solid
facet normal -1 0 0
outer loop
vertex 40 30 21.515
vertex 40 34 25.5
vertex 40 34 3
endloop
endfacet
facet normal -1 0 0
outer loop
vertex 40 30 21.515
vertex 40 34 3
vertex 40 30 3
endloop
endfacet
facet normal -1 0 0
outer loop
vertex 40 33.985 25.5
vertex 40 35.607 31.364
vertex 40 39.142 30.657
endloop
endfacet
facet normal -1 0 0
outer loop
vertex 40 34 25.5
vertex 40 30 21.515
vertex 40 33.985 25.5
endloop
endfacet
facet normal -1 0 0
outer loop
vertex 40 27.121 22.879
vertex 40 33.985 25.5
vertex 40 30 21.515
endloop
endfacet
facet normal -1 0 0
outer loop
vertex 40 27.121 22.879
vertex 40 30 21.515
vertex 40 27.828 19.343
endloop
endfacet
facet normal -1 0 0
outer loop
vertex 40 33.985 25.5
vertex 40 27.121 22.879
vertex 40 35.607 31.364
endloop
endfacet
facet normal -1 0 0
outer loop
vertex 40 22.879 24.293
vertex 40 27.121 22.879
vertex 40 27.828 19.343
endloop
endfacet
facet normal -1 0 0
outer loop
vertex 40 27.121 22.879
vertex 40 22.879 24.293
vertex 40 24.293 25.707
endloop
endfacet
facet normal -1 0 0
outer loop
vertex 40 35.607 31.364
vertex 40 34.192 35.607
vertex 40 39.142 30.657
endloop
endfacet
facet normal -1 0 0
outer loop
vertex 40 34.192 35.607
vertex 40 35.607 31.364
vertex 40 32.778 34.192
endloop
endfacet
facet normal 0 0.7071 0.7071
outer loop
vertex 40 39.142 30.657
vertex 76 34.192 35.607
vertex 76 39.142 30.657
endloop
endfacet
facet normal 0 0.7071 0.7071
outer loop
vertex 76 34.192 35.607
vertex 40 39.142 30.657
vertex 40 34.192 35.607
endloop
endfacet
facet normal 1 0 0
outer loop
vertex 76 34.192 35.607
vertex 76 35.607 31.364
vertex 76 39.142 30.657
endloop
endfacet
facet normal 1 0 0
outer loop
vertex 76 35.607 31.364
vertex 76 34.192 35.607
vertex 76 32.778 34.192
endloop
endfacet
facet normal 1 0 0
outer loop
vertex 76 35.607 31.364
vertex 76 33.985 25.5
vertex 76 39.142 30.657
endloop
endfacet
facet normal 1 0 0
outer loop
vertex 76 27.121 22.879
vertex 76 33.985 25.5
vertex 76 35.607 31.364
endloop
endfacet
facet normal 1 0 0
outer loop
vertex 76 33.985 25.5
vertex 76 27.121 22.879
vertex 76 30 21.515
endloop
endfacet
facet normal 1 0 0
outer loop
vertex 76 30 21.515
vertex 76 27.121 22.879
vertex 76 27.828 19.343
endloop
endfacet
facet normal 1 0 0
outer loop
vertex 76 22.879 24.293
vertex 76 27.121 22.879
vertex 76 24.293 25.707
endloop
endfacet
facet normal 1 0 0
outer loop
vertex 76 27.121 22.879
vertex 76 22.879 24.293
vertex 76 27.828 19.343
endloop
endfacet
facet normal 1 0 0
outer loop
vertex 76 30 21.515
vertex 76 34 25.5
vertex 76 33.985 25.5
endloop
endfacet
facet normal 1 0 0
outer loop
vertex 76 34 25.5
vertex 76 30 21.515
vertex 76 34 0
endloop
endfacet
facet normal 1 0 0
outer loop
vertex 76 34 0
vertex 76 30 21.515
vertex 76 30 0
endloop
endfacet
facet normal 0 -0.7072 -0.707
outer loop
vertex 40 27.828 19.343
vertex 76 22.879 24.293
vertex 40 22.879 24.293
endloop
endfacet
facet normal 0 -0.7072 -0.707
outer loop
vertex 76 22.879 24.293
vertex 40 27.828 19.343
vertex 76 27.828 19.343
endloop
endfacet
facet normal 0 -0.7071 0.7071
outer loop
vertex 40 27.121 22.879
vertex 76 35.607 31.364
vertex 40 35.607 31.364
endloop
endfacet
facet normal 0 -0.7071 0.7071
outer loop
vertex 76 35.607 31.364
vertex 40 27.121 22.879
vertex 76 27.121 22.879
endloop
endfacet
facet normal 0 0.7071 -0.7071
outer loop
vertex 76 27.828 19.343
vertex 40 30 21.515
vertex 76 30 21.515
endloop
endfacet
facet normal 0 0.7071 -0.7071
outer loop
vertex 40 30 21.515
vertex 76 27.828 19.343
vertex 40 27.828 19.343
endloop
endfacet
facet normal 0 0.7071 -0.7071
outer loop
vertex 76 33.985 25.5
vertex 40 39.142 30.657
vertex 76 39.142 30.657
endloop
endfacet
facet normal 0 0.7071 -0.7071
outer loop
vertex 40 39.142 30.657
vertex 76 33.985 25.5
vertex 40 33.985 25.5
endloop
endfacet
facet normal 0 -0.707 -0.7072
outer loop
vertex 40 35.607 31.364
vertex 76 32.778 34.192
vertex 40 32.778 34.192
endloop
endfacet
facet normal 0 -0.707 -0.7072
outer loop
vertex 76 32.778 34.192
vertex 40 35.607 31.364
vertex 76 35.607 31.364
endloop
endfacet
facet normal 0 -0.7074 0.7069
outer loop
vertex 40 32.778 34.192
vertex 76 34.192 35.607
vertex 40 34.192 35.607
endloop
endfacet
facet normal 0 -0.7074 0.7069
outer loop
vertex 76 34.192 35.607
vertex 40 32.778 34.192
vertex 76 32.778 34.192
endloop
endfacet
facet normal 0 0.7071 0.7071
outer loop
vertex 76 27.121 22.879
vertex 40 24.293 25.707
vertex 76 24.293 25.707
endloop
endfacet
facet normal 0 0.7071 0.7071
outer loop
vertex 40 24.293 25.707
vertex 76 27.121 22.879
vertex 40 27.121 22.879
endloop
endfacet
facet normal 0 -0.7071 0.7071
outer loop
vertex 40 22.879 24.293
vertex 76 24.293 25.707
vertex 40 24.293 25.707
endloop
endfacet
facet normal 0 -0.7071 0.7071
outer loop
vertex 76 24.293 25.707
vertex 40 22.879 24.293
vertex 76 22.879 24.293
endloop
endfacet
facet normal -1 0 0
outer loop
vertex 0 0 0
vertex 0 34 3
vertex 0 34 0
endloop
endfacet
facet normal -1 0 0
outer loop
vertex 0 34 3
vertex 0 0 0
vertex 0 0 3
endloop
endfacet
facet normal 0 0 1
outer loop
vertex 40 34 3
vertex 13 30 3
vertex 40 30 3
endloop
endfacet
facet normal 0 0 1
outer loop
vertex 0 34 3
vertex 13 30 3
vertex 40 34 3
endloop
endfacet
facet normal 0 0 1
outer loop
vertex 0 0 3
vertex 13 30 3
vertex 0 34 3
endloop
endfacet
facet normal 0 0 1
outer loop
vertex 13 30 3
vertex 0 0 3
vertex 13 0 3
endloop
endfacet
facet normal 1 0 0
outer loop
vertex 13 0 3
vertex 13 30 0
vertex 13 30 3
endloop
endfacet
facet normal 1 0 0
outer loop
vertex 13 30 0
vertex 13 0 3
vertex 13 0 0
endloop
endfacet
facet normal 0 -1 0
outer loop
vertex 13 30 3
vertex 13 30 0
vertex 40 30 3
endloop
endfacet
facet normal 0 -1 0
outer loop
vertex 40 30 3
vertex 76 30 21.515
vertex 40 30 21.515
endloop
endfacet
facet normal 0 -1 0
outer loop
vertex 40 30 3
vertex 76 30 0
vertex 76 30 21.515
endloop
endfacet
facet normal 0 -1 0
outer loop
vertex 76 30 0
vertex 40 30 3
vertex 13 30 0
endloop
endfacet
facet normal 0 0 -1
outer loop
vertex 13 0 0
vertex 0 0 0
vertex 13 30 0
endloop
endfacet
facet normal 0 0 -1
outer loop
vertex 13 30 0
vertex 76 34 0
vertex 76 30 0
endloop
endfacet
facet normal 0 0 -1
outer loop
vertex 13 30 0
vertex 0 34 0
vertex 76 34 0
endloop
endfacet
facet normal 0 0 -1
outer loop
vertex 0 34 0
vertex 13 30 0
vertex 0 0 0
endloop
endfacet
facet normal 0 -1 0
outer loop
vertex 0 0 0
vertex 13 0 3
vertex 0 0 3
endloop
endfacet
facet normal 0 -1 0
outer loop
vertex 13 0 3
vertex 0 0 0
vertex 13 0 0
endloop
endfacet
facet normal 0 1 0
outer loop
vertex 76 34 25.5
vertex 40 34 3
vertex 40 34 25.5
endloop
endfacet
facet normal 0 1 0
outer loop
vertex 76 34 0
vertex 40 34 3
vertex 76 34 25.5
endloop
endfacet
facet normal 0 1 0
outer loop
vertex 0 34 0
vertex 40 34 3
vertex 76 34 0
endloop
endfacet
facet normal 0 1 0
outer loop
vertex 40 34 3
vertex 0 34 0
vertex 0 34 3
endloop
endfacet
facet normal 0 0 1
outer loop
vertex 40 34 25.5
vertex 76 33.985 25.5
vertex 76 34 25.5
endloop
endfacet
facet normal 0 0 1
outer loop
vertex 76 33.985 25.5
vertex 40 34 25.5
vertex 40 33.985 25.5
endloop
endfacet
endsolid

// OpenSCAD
// Under board 
cube([13,30,3]);

// Arm
translate([0,30,0]){
  color([0,1,0]) cube([76,4,3]);  
}

// Vertical
translate([40,30,3]){
    color([1,0,0]) cube ([36,4,22.5]);
}

//OLED Holder
translate([40,25,25]){
  rotate([-45,0,0]){
      //OLED  
      //color([0,0,1]) cube([38,3,11.8]);
      
        
      //Back
      translate([0,3,-2]) color([0,1,0]) cube([36,3,16]);
      //Top
      translate([0,-1,12]) color([1,0,0]) cube([36,4,2]);   
      //Bottom
      translate([0,-1,-2]) color([1,0,0]) cube([36,4,2]);
  } 
}
